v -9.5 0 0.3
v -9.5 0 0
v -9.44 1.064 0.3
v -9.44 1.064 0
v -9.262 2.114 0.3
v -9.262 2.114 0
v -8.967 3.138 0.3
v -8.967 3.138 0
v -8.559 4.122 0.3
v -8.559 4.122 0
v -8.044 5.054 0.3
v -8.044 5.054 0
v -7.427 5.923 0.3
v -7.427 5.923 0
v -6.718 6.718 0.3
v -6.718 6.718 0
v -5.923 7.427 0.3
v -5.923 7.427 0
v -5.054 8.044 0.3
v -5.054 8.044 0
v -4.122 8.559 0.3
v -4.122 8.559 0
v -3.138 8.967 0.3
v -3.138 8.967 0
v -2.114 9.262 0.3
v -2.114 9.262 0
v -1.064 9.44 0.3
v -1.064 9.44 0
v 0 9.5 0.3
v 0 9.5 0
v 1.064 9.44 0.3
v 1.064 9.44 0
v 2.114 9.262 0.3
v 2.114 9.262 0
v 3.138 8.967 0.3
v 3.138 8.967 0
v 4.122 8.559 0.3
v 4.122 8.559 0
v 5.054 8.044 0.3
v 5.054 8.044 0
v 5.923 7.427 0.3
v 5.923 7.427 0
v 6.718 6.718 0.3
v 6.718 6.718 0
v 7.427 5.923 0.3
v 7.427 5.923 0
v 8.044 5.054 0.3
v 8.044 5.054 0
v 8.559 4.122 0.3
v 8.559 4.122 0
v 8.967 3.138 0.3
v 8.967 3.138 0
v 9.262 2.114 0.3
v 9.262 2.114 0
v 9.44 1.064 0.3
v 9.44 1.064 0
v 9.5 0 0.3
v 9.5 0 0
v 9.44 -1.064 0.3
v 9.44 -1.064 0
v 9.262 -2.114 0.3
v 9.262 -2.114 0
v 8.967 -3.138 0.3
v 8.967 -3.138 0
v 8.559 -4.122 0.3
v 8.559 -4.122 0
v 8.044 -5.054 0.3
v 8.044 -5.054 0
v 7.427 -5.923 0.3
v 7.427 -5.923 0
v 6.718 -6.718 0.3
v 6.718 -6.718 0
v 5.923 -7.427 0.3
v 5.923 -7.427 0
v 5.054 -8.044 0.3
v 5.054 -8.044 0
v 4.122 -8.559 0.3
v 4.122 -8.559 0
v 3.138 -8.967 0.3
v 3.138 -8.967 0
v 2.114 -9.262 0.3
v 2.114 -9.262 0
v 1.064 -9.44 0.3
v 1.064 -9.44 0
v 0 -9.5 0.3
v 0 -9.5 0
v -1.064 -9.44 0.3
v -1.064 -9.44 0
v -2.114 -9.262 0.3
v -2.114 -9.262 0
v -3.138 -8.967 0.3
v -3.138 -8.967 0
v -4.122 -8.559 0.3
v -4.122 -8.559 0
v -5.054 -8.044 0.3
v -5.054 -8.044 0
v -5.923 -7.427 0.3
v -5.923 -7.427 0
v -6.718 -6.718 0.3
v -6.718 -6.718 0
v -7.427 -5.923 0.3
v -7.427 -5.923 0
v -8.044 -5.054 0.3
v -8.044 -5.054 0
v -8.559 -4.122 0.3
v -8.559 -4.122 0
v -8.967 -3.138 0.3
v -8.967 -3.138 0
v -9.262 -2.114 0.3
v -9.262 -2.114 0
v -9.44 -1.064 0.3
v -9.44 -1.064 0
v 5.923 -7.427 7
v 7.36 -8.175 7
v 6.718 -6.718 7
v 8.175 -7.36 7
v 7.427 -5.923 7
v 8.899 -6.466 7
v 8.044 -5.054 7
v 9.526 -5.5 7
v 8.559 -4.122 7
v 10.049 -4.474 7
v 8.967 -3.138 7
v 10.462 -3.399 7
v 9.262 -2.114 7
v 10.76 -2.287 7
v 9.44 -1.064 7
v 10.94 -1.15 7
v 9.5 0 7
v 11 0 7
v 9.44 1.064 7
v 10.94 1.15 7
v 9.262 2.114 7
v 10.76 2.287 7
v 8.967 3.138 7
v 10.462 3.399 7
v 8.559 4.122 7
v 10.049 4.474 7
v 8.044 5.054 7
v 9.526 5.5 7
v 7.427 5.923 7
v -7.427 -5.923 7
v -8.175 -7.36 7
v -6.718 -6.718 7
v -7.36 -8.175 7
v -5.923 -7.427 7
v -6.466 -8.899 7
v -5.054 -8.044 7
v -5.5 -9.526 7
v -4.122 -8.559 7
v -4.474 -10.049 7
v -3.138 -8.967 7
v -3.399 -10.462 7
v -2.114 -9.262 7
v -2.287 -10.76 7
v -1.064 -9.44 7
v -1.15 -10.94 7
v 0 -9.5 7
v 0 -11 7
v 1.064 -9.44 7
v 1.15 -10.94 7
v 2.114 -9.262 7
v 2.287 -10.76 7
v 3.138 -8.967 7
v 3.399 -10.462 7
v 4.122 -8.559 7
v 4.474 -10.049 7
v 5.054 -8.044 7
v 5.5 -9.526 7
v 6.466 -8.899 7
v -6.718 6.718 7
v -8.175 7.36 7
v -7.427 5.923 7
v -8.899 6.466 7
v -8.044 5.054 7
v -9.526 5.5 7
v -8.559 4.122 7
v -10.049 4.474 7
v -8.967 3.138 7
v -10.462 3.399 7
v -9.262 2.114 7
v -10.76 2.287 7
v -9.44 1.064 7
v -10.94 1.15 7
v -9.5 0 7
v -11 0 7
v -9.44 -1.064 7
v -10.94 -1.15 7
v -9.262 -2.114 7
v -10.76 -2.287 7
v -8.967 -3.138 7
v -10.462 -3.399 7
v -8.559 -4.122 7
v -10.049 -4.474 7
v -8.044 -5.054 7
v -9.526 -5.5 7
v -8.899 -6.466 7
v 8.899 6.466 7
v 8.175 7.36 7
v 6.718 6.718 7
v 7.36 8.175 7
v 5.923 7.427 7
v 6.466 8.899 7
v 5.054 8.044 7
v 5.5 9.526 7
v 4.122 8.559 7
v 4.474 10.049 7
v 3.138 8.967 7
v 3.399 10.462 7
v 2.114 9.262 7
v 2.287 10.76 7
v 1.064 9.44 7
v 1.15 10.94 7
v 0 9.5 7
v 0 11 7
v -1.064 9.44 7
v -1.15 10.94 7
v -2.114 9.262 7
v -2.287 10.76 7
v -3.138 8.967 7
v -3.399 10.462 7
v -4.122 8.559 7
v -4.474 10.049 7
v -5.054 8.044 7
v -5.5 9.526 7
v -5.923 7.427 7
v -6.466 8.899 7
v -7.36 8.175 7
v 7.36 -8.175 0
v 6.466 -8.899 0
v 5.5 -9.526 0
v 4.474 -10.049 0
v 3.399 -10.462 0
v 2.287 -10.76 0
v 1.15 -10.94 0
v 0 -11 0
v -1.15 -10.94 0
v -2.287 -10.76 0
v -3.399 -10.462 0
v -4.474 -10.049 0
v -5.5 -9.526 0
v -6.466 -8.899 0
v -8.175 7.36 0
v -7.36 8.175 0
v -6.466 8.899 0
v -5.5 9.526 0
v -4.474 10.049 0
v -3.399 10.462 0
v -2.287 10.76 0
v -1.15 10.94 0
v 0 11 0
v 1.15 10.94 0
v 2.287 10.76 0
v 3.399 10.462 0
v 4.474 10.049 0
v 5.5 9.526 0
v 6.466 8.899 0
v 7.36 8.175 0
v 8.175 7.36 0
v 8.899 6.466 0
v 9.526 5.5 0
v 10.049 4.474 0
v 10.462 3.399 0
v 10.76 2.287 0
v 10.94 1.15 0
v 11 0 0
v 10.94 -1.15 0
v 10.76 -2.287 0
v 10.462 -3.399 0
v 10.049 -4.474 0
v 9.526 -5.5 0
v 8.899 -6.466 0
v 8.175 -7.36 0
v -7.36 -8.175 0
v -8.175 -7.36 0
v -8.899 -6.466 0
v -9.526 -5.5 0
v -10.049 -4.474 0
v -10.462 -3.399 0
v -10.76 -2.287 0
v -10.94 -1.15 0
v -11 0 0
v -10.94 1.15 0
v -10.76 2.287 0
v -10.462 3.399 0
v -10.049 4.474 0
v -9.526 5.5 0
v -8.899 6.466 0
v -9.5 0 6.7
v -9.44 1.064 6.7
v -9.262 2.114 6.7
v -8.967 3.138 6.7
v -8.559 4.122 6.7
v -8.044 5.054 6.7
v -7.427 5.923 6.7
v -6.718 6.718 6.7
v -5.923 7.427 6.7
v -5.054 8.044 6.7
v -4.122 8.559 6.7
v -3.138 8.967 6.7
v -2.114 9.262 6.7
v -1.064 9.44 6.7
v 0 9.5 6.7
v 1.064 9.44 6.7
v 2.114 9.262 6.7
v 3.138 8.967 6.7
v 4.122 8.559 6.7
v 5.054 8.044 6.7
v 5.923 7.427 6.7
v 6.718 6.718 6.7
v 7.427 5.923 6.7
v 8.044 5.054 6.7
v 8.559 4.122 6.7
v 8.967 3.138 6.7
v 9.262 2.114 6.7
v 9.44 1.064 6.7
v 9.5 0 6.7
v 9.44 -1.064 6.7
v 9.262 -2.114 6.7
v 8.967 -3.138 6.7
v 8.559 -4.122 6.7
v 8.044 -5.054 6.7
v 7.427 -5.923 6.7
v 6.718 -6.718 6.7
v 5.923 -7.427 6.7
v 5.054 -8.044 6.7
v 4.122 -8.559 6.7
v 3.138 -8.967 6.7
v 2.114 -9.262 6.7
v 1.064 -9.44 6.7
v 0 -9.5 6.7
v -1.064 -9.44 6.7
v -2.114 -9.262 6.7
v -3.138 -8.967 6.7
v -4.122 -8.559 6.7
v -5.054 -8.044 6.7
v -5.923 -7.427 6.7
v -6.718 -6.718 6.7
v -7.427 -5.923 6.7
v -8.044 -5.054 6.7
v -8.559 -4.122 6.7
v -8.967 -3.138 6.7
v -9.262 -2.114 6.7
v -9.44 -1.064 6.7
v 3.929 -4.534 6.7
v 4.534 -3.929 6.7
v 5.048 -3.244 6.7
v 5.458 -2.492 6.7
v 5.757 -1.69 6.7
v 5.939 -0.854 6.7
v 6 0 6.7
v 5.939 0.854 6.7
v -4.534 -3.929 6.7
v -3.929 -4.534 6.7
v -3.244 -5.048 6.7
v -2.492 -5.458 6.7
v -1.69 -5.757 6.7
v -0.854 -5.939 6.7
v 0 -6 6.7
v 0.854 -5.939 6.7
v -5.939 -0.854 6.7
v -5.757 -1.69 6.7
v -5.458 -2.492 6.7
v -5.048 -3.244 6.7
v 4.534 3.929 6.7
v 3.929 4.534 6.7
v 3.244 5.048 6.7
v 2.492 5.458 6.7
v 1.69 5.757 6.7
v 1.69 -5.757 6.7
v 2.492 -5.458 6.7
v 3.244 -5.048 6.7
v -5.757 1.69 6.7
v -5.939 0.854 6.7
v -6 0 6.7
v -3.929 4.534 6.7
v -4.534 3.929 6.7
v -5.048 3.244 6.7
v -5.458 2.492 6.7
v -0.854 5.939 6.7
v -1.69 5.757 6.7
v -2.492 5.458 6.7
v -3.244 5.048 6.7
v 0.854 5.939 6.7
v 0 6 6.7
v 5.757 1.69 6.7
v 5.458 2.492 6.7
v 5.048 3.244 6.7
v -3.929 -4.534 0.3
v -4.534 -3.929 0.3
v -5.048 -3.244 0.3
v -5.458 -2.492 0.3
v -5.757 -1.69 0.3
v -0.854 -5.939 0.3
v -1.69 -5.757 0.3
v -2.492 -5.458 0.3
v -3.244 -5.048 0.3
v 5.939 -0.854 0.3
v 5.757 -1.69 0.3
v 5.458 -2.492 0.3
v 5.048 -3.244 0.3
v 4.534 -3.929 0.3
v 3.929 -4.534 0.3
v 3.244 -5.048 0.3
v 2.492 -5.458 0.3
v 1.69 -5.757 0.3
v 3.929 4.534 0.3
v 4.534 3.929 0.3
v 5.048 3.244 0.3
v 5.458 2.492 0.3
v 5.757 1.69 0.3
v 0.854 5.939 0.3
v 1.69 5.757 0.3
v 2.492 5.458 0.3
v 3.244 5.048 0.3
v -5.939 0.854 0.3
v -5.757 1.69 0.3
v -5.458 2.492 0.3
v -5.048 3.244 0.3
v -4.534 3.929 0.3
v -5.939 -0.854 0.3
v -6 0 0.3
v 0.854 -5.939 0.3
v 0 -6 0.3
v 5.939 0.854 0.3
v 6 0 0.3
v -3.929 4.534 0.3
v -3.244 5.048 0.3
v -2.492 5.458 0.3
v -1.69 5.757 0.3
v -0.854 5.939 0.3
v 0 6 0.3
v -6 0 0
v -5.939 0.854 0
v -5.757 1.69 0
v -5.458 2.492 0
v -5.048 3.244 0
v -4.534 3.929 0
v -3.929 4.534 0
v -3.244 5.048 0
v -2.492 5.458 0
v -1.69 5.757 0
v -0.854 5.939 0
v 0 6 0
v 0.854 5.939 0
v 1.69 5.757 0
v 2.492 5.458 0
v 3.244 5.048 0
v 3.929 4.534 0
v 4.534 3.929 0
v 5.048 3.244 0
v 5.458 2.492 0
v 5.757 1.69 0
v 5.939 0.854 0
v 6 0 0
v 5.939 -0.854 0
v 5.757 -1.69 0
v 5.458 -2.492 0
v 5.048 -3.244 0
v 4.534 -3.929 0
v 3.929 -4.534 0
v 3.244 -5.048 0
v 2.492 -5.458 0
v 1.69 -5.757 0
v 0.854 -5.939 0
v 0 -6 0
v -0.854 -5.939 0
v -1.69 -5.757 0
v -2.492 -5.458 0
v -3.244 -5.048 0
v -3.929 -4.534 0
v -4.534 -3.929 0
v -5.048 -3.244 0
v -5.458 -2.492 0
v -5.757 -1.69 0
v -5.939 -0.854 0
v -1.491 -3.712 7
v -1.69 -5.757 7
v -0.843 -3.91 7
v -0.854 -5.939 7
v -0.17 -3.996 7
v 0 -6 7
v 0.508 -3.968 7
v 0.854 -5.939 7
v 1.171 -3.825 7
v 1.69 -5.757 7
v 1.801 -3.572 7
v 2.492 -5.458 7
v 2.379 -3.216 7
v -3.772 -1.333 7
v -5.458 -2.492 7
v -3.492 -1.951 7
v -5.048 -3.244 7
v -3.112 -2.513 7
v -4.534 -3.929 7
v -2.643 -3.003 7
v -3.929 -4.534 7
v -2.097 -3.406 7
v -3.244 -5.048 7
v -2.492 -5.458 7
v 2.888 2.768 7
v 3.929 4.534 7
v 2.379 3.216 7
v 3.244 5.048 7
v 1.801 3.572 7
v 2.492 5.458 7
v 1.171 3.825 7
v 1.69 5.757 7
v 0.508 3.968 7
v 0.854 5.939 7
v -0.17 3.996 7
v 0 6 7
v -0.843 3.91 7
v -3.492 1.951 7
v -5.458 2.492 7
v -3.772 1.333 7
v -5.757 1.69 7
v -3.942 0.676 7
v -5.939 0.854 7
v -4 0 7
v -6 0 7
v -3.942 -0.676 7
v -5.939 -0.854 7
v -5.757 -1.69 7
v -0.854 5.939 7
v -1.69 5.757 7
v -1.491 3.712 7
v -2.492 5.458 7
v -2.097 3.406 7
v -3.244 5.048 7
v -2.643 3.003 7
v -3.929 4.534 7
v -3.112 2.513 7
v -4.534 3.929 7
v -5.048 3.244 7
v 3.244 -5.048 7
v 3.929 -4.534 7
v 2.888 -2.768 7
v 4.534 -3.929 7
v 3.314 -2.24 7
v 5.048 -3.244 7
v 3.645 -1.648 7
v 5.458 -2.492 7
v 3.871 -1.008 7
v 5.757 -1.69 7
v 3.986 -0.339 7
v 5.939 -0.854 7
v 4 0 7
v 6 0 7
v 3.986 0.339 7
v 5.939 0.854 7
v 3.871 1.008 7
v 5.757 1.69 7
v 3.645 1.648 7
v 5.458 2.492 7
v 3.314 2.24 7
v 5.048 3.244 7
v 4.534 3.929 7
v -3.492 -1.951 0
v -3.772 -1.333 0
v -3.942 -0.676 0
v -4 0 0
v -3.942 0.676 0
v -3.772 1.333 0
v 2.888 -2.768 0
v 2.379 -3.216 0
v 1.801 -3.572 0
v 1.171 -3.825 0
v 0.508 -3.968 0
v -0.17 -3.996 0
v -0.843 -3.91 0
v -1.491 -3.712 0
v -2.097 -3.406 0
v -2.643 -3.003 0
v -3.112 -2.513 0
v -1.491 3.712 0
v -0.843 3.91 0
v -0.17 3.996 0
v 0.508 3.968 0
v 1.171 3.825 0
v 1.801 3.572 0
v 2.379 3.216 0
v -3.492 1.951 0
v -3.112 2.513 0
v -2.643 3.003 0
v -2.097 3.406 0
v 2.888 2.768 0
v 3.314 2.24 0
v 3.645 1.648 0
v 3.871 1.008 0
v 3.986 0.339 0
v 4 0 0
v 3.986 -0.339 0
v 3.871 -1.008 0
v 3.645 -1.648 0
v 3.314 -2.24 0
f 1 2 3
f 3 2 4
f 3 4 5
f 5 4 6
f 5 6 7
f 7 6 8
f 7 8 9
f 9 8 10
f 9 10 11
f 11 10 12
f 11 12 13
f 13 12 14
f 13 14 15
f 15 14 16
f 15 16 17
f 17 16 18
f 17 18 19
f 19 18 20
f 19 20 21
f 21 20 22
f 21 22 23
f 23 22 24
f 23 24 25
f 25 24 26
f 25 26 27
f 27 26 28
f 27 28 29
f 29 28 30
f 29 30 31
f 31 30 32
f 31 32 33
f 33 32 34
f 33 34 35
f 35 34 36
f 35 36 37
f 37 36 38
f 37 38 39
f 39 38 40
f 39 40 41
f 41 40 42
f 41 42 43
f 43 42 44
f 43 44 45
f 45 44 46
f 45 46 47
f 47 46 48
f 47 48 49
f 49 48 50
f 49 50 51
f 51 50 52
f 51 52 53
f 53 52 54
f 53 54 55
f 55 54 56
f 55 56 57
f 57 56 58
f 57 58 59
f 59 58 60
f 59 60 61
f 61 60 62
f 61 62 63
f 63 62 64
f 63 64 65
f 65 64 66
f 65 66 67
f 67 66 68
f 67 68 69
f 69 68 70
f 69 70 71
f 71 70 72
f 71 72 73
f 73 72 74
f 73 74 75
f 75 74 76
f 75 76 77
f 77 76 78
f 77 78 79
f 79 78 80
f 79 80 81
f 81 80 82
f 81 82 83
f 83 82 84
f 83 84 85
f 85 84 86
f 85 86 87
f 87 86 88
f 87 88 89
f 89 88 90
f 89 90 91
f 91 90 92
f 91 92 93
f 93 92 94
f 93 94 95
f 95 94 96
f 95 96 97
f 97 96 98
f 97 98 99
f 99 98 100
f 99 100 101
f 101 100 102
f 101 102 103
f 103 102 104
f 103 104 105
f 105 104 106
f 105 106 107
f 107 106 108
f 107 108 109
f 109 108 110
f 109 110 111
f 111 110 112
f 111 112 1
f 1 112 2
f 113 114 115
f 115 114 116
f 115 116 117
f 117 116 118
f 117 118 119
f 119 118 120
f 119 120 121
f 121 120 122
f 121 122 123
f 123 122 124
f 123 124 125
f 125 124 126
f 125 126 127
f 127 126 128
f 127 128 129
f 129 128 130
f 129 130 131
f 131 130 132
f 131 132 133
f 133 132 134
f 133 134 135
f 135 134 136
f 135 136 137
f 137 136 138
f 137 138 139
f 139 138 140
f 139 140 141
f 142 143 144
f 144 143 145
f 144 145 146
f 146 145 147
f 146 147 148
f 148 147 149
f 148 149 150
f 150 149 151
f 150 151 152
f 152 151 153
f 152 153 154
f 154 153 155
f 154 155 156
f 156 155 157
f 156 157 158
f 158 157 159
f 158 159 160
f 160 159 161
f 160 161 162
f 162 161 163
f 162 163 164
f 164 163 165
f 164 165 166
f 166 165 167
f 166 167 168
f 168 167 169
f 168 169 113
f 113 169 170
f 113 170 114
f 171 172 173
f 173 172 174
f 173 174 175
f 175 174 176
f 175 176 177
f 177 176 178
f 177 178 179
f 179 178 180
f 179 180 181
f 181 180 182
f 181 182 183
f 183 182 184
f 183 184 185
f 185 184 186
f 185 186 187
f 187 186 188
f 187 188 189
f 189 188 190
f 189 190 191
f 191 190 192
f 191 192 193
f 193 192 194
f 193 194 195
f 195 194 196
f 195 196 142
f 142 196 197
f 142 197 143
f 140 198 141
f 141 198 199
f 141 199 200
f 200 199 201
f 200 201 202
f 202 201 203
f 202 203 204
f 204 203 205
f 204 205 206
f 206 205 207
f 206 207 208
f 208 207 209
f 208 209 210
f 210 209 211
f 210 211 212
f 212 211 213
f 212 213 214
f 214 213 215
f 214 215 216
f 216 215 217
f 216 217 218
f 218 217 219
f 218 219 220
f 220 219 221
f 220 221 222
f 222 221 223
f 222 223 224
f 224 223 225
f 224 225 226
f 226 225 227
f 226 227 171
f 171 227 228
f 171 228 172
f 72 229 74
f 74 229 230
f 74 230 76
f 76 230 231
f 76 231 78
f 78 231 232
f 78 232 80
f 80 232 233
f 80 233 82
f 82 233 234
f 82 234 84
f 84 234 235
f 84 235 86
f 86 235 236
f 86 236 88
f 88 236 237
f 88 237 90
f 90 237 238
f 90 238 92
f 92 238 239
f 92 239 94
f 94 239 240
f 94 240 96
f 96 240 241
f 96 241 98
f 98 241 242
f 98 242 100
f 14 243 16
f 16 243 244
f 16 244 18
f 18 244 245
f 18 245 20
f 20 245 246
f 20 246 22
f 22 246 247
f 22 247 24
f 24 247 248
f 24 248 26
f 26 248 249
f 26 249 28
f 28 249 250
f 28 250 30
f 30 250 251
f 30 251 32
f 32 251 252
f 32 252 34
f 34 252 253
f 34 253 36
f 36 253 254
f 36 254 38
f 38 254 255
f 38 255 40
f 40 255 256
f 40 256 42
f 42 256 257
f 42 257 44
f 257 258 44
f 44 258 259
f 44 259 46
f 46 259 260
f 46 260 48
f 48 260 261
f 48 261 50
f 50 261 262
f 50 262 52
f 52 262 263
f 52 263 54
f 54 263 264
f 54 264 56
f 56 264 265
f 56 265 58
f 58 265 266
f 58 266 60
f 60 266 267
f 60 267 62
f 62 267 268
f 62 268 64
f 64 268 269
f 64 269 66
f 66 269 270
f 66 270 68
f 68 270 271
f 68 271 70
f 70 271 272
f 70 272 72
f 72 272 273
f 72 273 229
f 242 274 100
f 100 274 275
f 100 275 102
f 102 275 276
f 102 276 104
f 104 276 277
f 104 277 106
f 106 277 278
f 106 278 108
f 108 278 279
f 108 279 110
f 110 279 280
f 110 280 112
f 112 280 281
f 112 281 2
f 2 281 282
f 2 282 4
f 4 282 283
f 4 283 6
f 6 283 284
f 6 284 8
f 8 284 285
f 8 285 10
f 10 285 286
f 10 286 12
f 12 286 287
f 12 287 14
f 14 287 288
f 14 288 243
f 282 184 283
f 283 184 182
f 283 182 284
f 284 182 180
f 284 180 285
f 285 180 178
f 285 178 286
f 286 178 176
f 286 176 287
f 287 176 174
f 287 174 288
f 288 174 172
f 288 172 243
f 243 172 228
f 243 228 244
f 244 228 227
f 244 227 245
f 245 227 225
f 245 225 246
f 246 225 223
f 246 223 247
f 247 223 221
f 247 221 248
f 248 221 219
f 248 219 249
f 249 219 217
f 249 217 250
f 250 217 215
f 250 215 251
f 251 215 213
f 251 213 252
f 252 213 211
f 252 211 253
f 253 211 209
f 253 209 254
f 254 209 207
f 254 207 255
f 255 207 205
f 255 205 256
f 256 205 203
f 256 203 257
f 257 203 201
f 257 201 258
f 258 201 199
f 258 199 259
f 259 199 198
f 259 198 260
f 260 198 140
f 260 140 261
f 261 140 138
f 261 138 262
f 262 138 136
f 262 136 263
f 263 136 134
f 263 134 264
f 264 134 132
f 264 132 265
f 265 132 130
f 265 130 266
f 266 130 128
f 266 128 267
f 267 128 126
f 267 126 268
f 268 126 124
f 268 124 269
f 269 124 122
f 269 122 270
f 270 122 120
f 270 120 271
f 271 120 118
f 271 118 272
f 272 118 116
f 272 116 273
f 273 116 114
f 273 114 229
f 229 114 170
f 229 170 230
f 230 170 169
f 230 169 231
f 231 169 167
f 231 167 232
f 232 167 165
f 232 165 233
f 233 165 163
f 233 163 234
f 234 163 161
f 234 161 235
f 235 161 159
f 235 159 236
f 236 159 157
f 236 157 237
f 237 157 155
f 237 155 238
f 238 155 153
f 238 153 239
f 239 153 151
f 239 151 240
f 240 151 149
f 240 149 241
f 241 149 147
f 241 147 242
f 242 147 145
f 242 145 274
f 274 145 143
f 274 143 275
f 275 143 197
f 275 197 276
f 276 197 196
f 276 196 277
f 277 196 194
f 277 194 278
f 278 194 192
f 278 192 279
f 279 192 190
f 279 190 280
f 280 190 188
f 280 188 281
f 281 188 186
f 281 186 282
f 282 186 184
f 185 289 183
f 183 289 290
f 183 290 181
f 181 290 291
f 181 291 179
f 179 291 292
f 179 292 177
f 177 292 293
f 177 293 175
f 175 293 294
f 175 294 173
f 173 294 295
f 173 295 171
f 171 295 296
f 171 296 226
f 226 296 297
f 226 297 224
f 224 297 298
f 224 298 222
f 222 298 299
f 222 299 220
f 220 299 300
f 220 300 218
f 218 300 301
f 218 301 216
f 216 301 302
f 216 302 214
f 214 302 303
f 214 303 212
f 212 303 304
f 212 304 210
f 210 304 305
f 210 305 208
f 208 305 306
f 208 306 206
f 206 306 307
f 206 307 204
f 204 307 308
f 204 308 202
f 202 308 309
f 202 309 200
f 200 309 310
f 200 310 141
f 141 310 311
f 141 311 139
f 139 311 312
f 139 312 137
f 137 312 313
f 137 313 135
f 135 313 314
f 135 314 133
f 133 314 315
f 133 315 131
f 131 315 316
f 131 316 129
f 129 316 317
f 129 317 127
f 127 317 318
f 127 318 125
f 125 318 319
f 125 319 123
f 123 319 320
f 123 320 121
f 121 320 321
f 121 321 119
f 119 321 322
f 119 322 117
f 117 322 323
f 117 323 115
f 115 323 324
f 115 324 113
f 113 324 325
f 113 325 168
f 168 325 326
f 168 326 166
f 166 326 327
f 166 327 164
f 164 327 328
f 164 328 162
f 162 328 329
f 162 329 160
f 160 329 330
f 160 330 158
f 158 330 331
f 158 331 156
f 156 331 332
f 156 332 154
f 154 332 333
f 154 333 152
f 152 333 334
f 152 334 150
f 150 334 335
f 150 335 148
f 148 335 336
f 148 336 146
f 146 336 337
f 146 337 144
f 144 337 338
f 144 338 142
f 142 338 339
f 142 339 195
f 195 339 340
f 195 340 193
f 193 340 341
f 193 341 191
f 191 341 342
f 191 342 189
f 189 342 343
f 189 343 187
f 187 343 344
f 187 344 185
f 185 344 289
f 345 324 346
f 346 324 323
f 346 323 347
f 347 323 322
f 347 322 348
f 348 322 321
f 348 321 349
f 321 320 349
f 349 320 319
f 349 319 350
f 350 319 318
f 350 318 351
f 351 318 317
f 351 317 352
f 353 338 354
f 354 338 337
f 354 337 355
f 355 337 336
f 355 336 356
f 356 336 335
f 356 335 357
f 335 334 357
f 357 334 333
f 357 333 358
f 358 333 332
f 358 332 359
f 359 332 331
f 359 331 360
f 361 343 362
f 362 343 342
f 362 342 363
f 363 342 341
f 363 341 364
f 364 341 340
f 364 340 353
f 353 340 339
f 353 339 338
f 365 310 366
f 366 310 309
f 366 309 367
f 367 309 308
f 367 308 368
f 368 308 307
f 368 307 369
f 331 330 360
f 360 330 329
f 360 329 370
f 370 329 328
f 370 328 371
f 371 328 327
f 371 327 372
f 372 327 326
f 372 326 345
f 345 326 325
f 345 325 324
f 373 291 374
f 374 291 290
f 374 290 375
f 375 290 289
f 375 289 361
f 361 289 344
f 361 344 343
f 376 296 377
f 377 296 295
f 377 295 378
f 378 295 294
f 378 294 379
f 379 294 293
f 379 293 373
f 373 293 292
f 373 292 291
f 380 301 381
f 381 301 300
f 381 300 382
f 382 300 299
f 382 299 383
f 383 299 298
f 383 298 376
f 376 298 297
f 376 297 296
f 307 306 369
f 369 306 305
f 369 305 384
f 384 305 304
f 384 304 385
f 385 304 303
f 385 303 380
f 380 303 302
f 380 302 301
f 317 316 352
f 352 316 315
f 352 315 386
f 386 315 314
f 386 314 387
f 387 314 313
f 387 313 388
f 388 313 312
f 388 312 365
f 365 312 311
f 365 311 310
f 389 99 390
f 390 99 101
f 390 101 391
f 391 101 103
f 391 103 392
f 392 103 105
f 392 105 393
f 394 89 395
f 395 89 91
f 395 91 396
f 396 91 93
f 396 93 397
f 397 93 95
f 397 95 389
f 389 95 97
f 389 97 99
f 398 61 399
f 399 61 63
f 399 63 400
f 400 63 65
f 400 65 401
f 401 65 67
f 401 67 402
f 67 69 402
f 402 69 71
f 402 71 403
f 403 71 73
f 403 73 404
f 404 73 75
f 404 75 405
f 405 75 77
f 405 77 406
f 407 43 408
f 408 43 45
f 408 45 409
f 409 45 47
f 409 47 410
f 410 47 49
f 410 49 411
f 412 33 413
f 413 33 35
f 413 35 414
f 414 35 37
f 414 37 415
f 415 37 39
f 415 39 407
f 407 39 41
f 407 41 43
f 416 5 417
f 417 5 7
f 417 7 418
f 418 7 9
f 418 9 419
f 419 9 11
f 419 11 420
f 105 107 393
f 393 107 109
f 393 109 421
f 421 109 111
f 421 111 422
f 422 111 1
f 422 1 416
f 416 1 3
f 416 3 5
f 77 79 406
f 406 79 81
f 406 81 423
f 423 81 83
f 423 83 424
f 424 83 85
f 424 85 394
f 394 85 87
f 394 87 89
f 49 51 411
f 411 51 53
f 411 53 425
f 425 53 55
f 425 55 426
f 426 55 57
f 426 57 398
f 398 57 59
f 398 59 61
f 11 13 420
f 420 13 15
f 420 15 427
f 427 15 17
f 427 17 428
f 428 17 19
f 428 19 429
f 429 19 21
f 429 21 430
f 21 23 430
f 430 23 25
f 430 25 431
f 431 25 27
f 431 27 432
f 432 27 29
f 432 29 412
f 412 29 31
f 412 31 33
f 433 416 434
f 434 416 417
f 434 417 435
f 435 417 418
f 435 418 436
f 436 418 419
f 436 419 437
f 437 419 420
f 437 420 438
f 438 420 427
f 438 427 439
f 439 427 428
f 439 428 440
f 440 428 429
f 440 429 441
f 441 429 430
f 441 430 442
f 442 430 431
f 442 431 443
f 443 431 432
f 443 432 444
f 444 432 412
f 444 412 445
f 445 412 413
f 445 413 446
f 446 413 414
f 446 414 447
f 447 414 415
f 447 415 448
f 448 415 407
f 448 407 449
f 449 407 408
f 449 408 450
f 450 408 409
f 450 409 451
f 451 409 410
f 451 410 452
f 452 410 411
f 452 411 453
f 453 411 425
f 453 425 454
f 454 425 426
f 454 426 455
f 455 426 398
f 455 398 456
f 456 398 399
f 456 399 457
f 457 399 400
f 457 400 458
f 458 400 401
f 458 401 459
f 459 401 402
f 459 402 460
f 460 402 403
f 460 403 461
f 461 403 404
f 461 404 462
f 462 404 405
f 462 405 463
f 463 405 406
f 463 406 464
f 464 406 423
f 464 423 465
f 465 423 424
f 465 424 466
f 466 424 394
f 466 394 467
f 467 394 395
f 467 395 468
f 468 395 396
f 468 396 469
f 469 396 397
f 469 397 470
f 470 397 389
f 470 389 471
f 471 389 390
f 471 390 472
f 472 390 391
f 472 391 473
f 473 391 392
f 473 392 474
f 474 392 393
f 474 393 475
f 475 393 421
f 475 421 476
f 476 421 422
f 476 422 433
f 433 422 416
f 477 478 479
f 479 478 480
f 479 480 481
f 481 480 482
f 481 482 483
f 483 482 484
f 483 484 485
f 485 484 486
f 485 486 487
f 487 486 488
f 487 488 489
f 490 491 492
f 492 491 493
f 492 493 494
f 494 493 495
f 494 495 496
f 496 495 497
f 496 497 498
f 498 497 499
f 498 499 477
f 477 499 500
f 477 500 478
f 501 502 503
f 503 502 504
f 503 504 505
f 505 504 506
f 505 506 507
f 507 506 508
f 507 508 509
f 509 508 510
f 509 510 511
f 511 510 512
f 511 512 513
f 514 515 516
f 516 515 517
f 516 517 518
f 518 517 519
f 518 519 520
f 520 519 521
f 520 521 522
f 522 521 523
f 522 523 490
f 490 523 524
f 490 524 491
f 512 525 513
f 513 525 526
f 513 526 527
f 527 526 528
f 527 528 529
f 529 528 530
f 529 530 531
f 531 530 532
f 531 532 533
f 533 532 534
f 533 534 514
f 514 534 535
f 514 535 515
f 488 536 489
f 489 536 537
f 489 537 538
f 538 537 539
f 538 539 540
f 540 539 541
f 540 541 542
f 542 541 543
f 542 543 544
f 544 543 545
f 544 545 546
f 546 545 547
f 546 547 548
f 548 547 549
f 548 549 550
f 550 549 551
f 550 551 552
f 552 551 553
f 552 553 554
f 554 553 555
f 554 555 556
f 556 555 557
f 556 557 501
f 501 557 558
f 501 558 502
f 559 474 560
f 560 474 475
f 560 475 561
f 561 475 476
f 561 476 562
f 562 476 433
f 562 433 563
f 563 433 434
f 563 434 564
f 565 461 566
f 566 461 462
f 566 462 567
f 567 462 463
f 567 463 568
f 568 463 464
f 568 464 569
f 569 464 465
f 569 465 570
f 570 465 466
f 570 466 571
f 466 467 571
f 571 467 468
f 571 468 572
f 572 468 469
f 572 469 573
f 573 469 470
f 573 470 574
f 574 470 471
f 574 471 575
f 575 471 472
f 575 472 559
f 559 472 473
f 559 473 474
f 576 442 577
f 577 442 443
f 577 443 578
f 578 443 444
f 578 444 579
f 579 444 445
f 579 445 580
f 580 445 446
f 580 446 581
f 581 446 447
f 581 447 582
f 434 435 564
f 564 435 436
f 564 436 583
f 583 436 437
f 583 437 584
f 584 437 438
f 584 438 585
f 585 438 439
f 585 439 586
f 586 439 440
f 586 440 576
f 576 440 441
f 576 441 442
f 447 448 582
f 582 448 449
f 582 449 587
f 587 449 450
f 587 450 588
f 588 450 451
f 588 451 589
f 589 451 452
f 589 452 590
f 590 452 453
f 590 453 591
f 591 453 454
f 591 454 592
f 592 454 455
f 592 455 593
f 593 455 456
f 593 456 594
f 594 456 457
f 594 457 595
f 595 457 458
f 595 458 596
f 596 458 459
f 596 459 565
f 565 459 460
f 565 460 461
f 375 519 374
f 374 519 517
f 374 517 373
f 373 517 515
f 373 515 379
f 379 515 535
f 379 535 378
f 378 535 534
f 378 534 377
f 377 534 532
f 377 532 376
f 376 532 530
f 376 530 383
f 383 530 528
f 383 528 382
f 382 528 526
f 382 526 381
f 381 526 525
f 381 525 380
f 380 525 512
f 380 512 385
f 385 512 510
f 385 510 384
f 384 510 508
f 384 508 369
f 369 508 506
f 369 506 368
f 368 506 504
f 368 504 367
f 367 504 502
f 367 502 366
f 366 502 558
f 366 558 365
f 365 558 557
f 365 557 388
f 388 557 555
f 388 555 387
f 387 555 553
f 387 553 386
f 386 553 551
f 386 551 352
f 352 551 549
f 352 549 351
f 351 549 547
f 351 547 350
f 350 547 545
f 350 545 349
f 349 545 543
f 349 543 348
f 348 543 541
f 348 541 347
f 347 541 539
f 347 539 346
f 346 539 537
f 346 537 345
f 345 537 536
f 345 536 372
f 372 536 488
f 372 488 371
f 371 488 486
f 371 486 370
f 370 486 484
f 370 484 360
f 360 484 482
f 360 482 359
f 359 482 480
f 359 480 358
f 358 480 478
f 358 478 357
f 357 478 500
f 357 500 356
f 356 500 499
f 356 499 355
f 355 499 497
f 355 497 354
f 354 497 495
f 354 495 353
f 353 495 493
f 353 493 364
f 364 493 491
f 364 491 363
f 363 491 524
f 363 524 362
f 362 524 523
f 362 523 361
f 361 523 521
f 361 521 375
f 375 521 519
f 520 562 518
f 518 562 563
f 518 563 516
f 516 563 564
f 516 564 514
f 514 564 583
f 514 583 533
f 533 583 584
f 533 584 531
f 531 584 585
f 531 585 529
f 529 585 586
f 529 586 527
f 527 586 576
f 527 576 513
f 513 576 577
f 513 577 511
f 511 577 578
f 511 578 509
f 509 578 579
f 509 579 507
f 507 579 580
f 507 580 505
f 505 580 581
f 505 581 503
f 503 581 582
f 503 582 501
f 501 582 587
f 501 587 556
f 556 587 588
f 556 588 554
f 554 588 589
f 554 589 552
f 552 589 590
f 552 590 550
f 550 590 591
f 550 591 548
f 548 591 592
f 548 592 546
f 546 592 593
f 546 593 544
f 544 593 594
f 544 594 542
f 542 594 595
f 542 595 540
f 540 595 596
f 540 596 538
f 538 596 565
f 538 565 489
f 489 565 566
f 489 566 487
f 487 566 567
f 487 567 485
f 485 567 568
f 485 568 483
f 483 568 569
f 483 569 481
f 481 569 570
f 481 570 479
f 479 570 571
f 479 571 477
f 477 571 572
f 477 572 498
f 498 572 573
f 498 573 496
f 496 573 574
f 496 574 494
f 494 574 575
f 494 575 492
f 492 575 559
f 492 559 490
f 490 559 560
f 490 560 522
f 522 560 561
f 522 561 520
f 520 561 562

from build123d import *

# Parameters (mm, degrees)
SKETCH1_R        = 11
SKETCH1_R_2      = 9.5
OUTER_RING_DEPTH = 7
SKETCH2_R        = 6
SKETCH2_R_2      = 4
INNER_RING_DEPTH = 7
SKETCH3_R        = 9.5
SKETCH3_R_2      = 6
SHIELDS_DEPTH    = 6.4


with BuildPart() as part:
    # Sketch1 → Outer_ring (new body)
    with BuildSketch(Plane.XY):
        Circle(SKETCH1_R)
        Circle(SKETCH1_R_2, mode=Mode.SUBTRACT)
    extrude(amount=OUTER_RING_DEPTH)



with BuildPart() as body_2:
    # Sketch2 → Inner_ring (new body)
    with BuildSketch(Plane.XY):
        Circle(SKETCH2_R)
        Circle(SKETCH2_R_2, mode=Mode.SUBTRACT)
    extrude(amount=INNER_RING_DEPTH)


with BuildPart() as part_1:
    add(part.part)

    add(body_2.part)  # Shields merges body 2
    # Sketch3 → Shields (add)
    with BuildSketch(Plane.XY.offset(0.3)):
        Circle(SKETCH3_R)
        Circle(SKETCH3_R_2, mode=Mode.SUBTRACT)
    extrude(amount=SHIELDS_DEPTH)


solid = part_1.part
